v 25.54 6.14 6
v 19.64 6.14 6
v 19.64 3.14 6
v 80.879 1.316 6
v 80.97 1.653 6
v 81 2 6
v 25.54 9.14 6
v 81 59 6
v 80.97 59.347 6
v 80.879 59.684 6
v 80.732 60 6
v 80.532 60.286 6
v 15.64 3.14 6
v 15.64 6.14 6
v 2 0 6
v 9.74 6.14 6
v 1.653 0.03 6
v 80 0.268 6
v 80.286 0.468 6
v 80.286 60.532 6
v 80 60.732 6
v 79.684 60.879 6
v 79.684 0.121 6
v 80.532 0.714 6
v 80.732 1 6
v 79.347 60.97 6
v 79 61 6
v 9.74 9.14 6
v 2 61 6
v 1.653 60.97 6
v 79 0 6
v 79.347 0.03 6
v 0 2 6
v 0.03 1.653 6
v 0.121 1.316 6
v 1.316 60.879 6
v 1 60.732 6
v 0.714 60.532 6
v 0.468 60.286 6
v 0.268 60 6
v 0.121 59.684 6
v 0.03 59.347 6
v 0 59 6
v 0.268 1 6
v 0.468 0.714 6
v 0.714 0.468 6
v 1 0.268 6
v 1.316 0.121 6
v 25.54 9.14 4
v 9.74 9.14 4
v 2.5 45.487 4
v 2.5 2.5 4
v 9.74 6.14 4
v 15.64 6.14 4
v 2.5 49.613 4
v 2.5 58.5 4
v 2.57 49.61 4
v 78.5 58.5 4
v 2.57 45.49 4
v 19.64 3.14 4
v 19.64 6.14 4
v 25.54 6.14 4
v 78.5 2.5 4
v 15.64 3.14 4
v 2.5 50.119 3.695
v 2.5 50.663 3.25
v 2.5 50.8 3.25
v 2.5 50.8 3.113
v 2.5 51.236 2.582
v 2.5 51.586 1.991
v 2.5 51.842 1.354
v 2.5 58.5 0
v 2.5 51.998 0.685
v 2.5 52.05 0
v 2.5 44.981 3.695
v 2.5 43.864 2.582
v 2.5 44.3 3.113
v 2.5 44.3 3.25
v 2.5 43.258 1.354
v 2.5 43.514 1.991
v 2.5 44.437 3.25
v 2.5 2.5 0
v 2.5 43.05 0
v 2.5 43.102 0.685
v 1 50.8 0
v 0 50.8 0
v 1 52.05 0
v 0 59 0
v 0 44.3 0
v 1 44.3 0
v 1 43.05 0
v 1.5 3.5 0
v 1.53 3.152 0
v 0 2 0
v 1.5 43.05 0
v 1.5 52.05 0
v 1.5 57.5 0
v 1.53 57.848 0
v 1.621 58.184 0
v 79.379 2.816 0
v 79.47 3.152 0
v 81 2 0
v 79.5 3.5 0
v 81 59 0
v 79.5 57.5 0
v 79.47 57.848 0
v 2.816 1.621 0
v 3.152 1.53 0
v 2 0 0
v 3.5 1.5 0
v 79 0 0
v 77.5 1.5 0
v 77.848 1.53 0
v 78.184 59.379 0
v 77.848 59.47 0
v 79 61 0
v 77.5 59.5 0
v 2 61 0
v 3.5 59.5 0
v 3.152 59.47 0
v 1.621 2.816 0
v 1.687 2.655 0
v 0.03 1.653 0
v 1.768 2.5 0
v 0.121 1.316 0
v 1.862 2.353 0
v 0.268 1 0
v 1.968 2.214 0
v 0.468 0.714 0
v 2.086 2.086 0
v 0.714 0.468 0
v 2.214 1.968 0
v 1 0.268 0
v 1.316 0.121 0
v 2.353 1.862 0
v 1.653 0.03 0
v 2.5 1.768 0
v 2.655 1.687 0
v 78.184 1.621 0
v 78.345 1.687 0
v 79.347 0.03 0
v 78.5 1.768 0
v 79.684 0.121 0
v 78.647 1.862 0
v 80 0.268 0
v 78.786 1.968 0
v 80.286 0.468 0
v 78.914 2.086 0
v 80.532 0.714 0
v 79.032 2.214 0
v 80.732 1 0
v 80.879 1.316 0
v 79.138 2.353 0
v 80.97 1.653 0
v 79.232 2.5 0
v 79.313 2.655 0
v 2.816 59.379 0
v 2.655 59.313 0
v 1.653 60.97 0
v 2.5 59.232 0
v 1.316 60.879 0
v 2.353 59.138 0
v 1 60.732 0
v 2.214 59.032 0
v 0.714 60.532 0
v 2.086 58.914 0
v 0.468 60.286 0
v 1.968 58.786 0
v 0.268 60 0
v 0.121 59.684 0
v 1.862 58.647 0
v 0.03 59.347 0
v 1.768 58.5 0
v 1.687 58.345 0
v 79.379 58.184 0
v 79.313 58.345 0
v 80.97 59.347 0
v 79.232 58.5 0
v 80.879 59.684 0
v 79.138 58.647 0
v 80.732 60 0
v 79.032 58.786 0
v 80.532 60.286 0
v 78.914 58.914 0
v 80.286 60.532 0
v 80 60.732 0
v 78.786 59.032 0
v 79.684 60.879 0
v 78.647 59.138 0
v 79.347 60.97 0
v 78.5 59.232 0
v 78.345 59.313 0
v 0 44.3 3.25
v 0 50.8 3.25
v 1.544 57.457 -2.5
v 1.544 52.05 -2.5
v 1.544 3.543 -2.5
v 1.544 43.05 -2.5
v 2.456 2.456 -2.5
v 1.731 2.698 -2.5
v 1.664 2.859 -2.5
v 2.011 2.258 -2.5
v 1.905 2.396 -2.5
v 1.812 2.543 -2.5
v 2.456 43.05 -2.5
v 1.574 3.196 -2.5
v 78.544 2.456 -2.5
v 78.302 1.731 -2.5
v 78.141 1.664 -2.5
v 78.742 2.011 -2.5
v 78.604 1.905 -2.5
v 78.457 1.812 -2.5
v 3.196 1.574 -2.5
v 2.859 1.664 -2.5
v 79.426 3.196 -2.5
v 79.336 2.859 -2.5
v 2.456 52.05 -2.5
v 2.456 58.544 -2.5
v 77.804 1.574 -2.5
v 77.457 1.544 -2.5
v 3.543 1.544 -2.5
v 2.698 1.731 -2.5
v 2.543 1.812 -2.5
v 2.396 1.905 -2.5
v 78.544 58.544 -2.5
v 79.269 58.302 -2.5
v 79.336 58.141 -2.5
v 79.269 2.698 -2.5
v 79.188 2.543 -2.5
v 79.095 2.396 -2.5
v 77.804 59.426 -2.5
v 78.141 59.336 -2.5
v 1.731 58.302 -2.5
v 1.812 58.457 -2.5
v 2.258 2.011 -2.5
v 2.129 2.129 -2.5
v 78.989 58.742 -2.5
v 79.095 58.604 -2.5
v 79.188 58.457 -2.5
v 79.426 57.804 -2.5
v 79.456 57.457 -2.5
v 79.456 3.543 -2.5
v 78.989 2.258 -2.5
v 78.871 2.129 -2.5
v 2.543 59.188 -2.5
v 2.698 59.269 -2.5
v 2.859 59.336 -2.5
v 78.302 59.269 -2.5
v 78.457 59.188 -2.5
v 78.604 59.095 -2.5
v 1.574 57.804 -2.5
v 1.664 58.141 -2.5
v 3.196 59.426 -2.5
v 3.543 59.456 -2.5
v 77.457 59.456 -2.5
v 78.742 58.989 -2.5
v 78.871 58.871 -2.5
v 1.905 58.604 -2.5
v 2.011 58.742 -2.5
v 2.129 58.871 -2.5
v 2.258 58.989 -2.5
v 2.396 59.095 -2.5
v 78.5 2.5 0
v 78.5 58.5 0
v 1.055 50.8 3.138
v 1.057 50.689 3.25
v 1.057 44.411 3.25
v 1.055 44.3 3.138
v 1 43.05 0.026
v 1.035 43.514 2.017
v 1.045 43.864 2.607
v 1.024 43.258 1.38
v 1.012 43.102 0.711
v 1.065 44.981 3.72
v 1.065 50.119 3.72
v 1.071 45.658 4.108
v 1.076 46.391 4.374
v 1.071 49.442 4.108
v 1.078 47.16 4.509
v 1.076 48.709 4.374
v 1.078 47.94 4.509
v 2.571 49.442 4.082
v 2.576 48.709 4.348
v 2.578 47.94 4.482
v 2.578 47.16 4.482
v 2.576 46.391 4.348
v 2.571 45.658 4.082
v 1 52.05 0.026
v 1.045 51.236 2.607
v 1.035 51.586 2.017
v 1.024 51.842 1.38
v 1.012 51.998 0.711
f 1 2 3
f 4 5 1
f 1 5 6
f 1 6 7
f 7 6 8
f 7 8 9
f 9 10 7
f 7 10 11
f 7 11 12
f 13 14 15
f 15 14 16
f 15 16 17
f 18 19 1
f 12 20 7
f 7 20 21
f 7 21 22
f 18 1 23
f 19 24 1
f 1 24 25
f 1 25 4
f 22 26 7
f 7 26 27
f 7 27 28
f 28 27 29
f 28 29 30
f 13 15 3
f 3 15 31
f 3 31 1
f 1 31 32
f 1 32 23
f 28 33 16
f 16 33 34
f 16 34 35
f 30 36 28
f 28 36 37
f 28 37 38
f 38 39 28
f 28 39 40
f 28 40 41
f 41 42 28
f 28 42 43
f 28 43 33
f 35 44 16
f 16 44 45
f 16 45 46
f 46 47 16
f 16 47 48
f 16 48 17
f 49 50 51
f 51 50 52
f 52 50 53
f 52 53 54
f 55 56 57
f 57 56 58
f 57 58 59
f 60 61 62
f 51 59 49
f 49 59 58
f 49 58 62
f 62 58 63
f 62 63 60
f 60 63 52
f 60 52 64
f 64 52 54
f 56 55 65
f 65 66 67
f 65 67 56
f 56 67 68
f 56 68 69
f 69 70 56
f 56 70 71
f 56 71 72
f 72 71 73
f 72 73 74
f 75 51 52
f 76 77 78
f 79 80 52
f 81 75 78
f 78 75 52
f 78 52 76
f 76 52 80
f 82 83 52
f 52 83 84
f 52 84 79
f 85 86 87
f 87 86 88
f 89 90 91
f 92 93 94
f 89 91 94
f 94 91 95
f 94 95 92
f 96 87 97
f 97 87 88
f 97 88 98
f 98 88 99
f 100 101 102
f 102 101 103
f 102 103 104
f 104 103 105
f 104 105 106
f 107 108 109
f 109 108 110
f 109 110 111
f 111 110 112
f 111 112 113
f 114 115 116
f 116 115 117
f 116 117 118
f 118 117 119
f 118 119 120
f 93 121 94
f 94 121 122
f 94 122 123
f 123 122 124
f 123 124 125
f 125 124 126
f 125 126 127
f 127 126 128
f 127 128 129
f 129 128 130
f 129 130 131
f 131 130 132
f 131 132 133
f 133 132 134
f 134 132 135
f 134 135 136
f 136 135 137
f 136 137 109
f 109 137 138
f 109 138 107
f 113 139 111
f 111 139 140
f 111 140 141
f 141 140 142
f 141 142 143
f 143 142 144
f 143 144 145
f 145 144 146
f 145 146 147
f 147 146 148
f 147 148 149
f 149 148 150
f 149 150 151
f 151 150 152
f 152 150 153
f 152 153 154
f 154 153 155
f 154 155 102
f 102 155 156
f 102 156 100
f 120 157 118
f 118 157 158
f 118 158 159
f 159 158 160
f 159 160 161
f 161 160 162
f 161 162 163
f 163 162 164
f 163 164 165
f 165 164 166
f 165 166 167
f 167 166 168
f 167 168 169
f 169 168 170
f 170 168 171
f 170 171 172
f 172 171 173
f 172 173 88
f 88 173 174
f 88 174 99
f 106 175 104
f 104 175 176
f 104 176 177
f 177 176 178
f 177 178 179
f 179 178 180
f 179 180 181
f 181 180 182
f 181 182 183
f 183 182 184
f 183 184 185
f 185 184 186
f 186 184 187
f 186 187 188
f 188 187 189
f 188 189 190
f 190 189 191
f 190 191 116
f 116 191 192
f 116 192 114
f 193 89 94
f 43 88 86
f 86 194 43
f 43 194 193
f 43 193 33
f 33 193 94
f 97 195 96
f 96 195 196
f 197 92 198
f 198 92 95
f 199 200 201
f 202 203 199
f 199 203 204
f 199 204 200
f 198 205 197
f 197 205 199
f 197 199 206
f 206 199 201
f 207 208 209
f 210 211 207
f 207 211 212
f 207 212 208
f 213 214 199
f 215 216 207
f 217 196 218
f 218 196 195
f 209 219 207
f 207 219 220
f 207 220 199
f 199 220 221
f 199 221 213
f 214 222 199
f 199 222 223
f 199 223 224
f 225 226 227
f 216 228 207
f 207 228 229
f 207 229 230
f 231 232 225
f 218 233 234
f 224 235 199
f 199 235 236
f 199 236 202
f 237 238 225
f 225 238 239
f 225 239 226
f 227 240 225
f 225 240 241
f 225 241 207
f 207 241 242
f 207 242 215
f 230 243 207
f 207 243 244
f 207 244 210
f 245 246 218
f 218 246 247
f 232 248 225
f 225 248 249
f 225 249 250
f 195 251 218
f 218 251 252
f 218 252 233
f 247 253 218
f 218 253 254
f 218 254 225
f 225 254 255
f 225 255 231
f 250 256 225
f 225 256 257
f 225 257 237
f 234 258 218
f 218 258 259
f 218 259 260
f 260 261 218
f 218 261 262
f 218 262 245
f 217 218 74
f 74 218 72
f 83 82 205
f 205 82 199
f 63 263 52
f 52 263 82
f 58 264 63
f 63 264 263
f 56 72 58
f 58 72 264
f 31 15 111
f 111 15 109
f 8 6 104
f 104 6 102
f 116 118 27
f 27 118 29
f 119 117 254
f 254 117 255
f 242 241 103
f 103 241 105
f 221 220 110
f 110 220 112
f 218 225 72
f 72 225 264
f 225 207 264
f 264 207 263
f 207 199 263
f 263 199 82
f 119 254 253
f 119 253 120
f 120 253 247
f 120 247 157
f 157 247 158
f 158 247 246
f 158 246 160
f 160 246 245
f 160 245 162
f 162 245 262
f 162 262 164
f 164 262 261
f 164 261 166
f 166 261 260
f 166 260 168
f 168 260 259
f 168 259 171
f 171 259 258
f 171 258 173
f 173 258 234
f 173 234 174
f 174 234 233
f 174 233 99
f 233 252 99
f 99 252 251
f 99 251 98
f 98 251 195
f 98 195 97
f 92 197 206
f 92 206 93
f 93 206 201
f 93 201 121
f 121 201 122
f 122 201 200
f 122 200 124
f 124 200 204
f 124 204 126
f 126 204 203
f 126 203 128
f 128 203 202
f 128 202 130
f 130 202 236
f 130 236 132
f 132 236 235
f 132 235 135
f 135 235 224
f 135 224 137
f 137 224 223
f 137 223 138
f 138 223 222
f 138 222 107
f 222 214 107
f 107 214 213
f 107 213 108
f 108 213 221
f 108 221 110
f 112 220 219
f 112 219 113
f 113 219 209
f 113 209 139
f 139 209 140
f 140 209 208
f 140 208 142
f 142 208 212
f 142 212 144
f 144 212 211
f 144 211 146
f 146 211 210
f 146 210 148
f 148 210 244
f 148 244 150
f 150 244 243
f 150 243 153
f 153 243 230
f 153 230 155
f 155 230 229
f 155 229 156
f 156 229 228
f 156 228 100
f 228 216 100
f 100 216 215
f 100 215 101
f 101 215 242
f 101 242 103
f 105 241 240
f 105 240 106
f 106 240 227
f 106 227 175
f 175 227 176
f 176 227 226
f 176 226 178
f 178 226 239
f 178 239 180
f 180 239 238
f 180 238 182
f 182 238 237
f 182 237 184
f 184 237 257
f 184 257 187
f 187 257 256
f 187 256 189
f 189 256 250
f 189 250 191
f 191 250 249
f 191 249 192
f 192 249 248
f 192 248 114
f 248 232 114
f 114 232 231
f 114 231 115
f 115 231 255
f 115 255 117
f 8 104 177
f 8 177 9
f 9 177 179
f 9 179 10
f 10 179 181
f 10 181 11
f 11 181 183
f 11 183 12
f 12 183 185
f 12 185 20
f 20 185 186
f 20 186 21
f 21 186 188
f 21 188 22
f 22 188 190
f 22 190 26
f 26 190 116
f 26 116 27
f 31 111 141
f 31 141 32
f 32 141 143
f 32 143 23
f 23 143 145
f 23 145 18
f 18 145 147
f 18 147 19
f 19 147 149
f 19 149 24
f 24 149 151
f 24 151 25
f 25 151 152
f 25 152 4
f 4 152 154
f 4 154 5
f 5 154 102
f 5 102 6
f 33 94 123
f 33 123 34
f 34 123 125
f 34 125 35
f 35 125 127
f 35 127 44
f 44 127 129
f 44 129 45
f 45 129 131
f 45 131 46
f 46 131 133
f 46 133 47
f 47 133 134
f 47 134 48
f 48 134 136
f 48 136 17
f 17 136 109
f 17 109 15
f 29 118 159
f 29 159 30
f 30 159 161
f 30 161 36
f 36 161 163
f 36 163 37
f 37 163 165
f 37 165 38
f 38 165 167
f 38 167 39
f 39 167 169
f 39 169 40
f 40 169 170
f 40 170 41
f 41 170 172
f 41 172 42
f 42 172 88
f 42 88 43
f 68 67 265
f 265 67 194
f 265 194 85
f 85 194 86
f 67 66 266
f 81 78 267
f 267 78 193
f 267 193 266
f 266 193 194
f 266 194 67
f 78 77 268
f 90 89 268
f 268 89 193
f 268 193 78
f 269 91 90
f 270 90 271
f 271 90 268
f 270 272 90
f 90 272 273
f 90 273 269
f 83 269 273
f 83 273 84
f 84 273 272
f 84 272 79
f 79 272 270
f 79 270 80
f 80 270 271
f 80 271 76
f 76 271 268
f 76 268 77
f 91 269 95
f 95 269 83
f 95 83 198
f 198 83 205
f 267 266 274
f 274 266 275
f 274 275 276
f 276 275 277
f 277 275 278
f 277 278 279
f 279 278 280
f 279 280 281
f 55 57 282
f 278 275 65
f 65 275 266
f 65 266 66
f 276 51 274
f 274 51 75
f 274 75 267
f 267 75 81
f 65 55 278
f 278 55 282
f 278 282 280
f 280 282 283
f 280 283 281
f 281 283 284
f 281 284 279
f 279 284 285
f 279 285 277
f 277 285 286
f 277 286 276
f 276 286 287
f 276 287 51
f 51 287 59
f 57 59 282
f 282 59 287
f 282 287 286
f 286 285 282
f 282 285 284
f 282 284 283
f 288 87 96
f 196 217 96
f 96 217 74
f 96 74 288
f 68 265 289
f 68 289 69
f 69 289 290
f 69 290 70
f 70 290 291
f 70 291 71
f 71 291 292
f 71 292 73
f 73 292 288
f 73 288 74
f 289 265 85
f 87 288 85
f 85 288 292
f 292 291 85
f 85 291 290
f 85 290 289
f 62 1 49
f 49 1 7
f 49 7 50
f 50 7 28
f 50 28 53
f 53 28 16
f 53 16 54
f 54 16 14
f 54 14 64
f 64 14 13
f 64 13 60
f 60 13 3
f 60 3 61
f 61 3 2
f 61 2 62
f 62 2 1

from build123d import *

# Parameters (mm, degrees)
ESQUISSE1_W                  = 81
ESQUISSE1_H                  = 61
ESQUISSE1_W_2                = 76
ESQUISSE1_H_2                = 56
EXTRU_MINCE1_DEPTH           = 6
ESQUISSE2_W                  = 78
ESQUISSE2_H                  = 58
ESQUISSE2_W_2                = 76
ESQUISSE2_H_2                = 56
EXTRU_MINCE2_DEPTH           = 6
EXTRU_MINCE2_OTHER_WAY_DEPTH = 2.5
EXTRU_MINCE2_OTHER_WAY_TAPER = 1
ESQUISSE3_W                  = 76
ESQUISSE3_H                  = 56
BOSS_EXTRU_1_DEPTH           = 2
CONG_1_R                     = 2
CONG_2_R                     = 2
ESQUISSE4_W                  = 10
ESQUISSE4_H                  = 6.5
ENL_V_MAT_EXTRU_1_DEPTH      = 12
ENL_V_MAT_EXTRU_2_DEPTH      = 1.5
ENL_V_MAT_EXTRU_3_DEPTH      = 11.5


with BuildPart() as part:
    # Esquisse1 → Extru.-Mince1 (new body)
    with BuildSketch(Plane.XY):
        with Locations((40.5, 30.5)):
            Rectangle(ESQUISSE1_W, ESQUISSE1_H)
        with Locations((40.5, 30.5)):
            Rectangle(ESQUISSE1_W_2, ESQUISSE1_H_2, mode=Mode.SUBTRACT)
    extrude(amount=EXTRU_MINCE1_DEPTH)

    # Esquisse2 → Extru.-Mince2 (add)
    with BuildSketch(Plane.XY):
        with Locations((40.5, 30.5)):
            Rectangle(ESQUISSE2_W, ESQUISSE2_H)
        with Locations((40.5, 30.5)):
            Rectangle(ESQUISSE2_W_2, ESQUISSE2_H_2, mode=Mode.SUBTRACT)
    extrude(amount=EXTRU_MINCE2_DEPTH)

    # Esquisse2 → Extru.-Mince2 other way (add)
    with BuildSketch(Plane.XY):
        with Locations((40.5, 30.5)):
            Rectangle(ESQUISSE2_W, ESQUISSE2_H)
        with Locations((40.5, 30.5)):
            Rectangle(ESQUISSE2_W_2, ESQUISSE2_H_2, mode=Mode.SUBTRACT)
    extrude(amount=-EXTRU_MINCE2_OTHER_WAY_DEPTH, taper=EXTRU_MINCE2_OTHER_WAY_TAPER)

    # Esquisse3 → Boss.-Extru.1 (add)
    with BuildSketch(Plane.XY.offset(6)):
        with Locations((40.5, 30.5)):
            Rectangle(ESQUISSE3_W, ESQUISSE3_H)
    extrude(amount=-BOSS_EXTRU_1_DEPTH)

    # Congé1
    cong_1_edges = [part.edges().sort_by_distance(p)[0] for p in [
        (1.521818831, 59.478181169, -1.25),
        (1.521818831, 1.521818831, -1.25),
        (79.478181169, 1.521818831, -1.25),
        (79.478181169, 59.478181169, -1.25),
    ]]
    fillet(cong_1_edges, radius=CONG_1_R)

    # Congé2
    cong_2_edges = [part.edges().sort_by_distance(p)[0] for p in [
        (81, 61, 3),
        (81, 0, 3),
        (0, 0, 3),
        (0, 61, 3),
    ]]
    fillet(cong_2_edges, radius=CONG_2_R)

    # Esquisse4 → Enlèv. mat.-Extru.1 (cut)
    with BuildSketch(Plane(origin=(0, 0, 0), x_dir=(0, 0, -1), z_dir=(1, 0, 0))):
        with Locations((1.75, 47.55)):
            Rectangle(ESQUISSE4_W, ESQUISSE4_H)
    extrude(amount=ENL_V_MAT_EXTRU_1_DEPTH, mode=Mode.SUBTRACT)

    # Esquisse5 → Enlèv. mat.-Extru.2 (cut)
    with BuildSketch(Plane(origin=(2.499238534, 0, -0.043624371), x_dir=(-0.01745240643728355, 0, -0.9998476951563913), z_dir=(0.9998476951563913, 0, -0.01745240643728355))):
        with BuildLine():
            Line((-0.043631016, 52.05), (9.11559923, 52.05))
            Line((9.11559923, 52.05), (9.11559923, 43.05))
            Line((9.11559923, 43.05), (-0.043631016, 43.05))
            ThreePointArc((-0.043631016, 43.05), (-4.543631016, 47.55), (-0.043631016, 52.05))
        make_face()
    extrude(amount=-ENL_V_MAT_EXTRU_2_DEPTH, mode=Mode.SUBTRACT)

    # Esquisse6 → Enlèv. mat.-Extru.3 (cut)
    with BuildSketch(Plane.XY):
        Polygon((25.54, 9.14), (9.74, 9.14), (9.74, 6.14), (15.64, 6.14), (15.64, 3.14), (19.64, 3.14), (19.64, 6.14), (25.54, 6.14), align=None)
    extrude(amount=ENL_V_MAT_EXTRU_3_DEPTH, mode=Mode.SUBTRACT)


solid = part.part
